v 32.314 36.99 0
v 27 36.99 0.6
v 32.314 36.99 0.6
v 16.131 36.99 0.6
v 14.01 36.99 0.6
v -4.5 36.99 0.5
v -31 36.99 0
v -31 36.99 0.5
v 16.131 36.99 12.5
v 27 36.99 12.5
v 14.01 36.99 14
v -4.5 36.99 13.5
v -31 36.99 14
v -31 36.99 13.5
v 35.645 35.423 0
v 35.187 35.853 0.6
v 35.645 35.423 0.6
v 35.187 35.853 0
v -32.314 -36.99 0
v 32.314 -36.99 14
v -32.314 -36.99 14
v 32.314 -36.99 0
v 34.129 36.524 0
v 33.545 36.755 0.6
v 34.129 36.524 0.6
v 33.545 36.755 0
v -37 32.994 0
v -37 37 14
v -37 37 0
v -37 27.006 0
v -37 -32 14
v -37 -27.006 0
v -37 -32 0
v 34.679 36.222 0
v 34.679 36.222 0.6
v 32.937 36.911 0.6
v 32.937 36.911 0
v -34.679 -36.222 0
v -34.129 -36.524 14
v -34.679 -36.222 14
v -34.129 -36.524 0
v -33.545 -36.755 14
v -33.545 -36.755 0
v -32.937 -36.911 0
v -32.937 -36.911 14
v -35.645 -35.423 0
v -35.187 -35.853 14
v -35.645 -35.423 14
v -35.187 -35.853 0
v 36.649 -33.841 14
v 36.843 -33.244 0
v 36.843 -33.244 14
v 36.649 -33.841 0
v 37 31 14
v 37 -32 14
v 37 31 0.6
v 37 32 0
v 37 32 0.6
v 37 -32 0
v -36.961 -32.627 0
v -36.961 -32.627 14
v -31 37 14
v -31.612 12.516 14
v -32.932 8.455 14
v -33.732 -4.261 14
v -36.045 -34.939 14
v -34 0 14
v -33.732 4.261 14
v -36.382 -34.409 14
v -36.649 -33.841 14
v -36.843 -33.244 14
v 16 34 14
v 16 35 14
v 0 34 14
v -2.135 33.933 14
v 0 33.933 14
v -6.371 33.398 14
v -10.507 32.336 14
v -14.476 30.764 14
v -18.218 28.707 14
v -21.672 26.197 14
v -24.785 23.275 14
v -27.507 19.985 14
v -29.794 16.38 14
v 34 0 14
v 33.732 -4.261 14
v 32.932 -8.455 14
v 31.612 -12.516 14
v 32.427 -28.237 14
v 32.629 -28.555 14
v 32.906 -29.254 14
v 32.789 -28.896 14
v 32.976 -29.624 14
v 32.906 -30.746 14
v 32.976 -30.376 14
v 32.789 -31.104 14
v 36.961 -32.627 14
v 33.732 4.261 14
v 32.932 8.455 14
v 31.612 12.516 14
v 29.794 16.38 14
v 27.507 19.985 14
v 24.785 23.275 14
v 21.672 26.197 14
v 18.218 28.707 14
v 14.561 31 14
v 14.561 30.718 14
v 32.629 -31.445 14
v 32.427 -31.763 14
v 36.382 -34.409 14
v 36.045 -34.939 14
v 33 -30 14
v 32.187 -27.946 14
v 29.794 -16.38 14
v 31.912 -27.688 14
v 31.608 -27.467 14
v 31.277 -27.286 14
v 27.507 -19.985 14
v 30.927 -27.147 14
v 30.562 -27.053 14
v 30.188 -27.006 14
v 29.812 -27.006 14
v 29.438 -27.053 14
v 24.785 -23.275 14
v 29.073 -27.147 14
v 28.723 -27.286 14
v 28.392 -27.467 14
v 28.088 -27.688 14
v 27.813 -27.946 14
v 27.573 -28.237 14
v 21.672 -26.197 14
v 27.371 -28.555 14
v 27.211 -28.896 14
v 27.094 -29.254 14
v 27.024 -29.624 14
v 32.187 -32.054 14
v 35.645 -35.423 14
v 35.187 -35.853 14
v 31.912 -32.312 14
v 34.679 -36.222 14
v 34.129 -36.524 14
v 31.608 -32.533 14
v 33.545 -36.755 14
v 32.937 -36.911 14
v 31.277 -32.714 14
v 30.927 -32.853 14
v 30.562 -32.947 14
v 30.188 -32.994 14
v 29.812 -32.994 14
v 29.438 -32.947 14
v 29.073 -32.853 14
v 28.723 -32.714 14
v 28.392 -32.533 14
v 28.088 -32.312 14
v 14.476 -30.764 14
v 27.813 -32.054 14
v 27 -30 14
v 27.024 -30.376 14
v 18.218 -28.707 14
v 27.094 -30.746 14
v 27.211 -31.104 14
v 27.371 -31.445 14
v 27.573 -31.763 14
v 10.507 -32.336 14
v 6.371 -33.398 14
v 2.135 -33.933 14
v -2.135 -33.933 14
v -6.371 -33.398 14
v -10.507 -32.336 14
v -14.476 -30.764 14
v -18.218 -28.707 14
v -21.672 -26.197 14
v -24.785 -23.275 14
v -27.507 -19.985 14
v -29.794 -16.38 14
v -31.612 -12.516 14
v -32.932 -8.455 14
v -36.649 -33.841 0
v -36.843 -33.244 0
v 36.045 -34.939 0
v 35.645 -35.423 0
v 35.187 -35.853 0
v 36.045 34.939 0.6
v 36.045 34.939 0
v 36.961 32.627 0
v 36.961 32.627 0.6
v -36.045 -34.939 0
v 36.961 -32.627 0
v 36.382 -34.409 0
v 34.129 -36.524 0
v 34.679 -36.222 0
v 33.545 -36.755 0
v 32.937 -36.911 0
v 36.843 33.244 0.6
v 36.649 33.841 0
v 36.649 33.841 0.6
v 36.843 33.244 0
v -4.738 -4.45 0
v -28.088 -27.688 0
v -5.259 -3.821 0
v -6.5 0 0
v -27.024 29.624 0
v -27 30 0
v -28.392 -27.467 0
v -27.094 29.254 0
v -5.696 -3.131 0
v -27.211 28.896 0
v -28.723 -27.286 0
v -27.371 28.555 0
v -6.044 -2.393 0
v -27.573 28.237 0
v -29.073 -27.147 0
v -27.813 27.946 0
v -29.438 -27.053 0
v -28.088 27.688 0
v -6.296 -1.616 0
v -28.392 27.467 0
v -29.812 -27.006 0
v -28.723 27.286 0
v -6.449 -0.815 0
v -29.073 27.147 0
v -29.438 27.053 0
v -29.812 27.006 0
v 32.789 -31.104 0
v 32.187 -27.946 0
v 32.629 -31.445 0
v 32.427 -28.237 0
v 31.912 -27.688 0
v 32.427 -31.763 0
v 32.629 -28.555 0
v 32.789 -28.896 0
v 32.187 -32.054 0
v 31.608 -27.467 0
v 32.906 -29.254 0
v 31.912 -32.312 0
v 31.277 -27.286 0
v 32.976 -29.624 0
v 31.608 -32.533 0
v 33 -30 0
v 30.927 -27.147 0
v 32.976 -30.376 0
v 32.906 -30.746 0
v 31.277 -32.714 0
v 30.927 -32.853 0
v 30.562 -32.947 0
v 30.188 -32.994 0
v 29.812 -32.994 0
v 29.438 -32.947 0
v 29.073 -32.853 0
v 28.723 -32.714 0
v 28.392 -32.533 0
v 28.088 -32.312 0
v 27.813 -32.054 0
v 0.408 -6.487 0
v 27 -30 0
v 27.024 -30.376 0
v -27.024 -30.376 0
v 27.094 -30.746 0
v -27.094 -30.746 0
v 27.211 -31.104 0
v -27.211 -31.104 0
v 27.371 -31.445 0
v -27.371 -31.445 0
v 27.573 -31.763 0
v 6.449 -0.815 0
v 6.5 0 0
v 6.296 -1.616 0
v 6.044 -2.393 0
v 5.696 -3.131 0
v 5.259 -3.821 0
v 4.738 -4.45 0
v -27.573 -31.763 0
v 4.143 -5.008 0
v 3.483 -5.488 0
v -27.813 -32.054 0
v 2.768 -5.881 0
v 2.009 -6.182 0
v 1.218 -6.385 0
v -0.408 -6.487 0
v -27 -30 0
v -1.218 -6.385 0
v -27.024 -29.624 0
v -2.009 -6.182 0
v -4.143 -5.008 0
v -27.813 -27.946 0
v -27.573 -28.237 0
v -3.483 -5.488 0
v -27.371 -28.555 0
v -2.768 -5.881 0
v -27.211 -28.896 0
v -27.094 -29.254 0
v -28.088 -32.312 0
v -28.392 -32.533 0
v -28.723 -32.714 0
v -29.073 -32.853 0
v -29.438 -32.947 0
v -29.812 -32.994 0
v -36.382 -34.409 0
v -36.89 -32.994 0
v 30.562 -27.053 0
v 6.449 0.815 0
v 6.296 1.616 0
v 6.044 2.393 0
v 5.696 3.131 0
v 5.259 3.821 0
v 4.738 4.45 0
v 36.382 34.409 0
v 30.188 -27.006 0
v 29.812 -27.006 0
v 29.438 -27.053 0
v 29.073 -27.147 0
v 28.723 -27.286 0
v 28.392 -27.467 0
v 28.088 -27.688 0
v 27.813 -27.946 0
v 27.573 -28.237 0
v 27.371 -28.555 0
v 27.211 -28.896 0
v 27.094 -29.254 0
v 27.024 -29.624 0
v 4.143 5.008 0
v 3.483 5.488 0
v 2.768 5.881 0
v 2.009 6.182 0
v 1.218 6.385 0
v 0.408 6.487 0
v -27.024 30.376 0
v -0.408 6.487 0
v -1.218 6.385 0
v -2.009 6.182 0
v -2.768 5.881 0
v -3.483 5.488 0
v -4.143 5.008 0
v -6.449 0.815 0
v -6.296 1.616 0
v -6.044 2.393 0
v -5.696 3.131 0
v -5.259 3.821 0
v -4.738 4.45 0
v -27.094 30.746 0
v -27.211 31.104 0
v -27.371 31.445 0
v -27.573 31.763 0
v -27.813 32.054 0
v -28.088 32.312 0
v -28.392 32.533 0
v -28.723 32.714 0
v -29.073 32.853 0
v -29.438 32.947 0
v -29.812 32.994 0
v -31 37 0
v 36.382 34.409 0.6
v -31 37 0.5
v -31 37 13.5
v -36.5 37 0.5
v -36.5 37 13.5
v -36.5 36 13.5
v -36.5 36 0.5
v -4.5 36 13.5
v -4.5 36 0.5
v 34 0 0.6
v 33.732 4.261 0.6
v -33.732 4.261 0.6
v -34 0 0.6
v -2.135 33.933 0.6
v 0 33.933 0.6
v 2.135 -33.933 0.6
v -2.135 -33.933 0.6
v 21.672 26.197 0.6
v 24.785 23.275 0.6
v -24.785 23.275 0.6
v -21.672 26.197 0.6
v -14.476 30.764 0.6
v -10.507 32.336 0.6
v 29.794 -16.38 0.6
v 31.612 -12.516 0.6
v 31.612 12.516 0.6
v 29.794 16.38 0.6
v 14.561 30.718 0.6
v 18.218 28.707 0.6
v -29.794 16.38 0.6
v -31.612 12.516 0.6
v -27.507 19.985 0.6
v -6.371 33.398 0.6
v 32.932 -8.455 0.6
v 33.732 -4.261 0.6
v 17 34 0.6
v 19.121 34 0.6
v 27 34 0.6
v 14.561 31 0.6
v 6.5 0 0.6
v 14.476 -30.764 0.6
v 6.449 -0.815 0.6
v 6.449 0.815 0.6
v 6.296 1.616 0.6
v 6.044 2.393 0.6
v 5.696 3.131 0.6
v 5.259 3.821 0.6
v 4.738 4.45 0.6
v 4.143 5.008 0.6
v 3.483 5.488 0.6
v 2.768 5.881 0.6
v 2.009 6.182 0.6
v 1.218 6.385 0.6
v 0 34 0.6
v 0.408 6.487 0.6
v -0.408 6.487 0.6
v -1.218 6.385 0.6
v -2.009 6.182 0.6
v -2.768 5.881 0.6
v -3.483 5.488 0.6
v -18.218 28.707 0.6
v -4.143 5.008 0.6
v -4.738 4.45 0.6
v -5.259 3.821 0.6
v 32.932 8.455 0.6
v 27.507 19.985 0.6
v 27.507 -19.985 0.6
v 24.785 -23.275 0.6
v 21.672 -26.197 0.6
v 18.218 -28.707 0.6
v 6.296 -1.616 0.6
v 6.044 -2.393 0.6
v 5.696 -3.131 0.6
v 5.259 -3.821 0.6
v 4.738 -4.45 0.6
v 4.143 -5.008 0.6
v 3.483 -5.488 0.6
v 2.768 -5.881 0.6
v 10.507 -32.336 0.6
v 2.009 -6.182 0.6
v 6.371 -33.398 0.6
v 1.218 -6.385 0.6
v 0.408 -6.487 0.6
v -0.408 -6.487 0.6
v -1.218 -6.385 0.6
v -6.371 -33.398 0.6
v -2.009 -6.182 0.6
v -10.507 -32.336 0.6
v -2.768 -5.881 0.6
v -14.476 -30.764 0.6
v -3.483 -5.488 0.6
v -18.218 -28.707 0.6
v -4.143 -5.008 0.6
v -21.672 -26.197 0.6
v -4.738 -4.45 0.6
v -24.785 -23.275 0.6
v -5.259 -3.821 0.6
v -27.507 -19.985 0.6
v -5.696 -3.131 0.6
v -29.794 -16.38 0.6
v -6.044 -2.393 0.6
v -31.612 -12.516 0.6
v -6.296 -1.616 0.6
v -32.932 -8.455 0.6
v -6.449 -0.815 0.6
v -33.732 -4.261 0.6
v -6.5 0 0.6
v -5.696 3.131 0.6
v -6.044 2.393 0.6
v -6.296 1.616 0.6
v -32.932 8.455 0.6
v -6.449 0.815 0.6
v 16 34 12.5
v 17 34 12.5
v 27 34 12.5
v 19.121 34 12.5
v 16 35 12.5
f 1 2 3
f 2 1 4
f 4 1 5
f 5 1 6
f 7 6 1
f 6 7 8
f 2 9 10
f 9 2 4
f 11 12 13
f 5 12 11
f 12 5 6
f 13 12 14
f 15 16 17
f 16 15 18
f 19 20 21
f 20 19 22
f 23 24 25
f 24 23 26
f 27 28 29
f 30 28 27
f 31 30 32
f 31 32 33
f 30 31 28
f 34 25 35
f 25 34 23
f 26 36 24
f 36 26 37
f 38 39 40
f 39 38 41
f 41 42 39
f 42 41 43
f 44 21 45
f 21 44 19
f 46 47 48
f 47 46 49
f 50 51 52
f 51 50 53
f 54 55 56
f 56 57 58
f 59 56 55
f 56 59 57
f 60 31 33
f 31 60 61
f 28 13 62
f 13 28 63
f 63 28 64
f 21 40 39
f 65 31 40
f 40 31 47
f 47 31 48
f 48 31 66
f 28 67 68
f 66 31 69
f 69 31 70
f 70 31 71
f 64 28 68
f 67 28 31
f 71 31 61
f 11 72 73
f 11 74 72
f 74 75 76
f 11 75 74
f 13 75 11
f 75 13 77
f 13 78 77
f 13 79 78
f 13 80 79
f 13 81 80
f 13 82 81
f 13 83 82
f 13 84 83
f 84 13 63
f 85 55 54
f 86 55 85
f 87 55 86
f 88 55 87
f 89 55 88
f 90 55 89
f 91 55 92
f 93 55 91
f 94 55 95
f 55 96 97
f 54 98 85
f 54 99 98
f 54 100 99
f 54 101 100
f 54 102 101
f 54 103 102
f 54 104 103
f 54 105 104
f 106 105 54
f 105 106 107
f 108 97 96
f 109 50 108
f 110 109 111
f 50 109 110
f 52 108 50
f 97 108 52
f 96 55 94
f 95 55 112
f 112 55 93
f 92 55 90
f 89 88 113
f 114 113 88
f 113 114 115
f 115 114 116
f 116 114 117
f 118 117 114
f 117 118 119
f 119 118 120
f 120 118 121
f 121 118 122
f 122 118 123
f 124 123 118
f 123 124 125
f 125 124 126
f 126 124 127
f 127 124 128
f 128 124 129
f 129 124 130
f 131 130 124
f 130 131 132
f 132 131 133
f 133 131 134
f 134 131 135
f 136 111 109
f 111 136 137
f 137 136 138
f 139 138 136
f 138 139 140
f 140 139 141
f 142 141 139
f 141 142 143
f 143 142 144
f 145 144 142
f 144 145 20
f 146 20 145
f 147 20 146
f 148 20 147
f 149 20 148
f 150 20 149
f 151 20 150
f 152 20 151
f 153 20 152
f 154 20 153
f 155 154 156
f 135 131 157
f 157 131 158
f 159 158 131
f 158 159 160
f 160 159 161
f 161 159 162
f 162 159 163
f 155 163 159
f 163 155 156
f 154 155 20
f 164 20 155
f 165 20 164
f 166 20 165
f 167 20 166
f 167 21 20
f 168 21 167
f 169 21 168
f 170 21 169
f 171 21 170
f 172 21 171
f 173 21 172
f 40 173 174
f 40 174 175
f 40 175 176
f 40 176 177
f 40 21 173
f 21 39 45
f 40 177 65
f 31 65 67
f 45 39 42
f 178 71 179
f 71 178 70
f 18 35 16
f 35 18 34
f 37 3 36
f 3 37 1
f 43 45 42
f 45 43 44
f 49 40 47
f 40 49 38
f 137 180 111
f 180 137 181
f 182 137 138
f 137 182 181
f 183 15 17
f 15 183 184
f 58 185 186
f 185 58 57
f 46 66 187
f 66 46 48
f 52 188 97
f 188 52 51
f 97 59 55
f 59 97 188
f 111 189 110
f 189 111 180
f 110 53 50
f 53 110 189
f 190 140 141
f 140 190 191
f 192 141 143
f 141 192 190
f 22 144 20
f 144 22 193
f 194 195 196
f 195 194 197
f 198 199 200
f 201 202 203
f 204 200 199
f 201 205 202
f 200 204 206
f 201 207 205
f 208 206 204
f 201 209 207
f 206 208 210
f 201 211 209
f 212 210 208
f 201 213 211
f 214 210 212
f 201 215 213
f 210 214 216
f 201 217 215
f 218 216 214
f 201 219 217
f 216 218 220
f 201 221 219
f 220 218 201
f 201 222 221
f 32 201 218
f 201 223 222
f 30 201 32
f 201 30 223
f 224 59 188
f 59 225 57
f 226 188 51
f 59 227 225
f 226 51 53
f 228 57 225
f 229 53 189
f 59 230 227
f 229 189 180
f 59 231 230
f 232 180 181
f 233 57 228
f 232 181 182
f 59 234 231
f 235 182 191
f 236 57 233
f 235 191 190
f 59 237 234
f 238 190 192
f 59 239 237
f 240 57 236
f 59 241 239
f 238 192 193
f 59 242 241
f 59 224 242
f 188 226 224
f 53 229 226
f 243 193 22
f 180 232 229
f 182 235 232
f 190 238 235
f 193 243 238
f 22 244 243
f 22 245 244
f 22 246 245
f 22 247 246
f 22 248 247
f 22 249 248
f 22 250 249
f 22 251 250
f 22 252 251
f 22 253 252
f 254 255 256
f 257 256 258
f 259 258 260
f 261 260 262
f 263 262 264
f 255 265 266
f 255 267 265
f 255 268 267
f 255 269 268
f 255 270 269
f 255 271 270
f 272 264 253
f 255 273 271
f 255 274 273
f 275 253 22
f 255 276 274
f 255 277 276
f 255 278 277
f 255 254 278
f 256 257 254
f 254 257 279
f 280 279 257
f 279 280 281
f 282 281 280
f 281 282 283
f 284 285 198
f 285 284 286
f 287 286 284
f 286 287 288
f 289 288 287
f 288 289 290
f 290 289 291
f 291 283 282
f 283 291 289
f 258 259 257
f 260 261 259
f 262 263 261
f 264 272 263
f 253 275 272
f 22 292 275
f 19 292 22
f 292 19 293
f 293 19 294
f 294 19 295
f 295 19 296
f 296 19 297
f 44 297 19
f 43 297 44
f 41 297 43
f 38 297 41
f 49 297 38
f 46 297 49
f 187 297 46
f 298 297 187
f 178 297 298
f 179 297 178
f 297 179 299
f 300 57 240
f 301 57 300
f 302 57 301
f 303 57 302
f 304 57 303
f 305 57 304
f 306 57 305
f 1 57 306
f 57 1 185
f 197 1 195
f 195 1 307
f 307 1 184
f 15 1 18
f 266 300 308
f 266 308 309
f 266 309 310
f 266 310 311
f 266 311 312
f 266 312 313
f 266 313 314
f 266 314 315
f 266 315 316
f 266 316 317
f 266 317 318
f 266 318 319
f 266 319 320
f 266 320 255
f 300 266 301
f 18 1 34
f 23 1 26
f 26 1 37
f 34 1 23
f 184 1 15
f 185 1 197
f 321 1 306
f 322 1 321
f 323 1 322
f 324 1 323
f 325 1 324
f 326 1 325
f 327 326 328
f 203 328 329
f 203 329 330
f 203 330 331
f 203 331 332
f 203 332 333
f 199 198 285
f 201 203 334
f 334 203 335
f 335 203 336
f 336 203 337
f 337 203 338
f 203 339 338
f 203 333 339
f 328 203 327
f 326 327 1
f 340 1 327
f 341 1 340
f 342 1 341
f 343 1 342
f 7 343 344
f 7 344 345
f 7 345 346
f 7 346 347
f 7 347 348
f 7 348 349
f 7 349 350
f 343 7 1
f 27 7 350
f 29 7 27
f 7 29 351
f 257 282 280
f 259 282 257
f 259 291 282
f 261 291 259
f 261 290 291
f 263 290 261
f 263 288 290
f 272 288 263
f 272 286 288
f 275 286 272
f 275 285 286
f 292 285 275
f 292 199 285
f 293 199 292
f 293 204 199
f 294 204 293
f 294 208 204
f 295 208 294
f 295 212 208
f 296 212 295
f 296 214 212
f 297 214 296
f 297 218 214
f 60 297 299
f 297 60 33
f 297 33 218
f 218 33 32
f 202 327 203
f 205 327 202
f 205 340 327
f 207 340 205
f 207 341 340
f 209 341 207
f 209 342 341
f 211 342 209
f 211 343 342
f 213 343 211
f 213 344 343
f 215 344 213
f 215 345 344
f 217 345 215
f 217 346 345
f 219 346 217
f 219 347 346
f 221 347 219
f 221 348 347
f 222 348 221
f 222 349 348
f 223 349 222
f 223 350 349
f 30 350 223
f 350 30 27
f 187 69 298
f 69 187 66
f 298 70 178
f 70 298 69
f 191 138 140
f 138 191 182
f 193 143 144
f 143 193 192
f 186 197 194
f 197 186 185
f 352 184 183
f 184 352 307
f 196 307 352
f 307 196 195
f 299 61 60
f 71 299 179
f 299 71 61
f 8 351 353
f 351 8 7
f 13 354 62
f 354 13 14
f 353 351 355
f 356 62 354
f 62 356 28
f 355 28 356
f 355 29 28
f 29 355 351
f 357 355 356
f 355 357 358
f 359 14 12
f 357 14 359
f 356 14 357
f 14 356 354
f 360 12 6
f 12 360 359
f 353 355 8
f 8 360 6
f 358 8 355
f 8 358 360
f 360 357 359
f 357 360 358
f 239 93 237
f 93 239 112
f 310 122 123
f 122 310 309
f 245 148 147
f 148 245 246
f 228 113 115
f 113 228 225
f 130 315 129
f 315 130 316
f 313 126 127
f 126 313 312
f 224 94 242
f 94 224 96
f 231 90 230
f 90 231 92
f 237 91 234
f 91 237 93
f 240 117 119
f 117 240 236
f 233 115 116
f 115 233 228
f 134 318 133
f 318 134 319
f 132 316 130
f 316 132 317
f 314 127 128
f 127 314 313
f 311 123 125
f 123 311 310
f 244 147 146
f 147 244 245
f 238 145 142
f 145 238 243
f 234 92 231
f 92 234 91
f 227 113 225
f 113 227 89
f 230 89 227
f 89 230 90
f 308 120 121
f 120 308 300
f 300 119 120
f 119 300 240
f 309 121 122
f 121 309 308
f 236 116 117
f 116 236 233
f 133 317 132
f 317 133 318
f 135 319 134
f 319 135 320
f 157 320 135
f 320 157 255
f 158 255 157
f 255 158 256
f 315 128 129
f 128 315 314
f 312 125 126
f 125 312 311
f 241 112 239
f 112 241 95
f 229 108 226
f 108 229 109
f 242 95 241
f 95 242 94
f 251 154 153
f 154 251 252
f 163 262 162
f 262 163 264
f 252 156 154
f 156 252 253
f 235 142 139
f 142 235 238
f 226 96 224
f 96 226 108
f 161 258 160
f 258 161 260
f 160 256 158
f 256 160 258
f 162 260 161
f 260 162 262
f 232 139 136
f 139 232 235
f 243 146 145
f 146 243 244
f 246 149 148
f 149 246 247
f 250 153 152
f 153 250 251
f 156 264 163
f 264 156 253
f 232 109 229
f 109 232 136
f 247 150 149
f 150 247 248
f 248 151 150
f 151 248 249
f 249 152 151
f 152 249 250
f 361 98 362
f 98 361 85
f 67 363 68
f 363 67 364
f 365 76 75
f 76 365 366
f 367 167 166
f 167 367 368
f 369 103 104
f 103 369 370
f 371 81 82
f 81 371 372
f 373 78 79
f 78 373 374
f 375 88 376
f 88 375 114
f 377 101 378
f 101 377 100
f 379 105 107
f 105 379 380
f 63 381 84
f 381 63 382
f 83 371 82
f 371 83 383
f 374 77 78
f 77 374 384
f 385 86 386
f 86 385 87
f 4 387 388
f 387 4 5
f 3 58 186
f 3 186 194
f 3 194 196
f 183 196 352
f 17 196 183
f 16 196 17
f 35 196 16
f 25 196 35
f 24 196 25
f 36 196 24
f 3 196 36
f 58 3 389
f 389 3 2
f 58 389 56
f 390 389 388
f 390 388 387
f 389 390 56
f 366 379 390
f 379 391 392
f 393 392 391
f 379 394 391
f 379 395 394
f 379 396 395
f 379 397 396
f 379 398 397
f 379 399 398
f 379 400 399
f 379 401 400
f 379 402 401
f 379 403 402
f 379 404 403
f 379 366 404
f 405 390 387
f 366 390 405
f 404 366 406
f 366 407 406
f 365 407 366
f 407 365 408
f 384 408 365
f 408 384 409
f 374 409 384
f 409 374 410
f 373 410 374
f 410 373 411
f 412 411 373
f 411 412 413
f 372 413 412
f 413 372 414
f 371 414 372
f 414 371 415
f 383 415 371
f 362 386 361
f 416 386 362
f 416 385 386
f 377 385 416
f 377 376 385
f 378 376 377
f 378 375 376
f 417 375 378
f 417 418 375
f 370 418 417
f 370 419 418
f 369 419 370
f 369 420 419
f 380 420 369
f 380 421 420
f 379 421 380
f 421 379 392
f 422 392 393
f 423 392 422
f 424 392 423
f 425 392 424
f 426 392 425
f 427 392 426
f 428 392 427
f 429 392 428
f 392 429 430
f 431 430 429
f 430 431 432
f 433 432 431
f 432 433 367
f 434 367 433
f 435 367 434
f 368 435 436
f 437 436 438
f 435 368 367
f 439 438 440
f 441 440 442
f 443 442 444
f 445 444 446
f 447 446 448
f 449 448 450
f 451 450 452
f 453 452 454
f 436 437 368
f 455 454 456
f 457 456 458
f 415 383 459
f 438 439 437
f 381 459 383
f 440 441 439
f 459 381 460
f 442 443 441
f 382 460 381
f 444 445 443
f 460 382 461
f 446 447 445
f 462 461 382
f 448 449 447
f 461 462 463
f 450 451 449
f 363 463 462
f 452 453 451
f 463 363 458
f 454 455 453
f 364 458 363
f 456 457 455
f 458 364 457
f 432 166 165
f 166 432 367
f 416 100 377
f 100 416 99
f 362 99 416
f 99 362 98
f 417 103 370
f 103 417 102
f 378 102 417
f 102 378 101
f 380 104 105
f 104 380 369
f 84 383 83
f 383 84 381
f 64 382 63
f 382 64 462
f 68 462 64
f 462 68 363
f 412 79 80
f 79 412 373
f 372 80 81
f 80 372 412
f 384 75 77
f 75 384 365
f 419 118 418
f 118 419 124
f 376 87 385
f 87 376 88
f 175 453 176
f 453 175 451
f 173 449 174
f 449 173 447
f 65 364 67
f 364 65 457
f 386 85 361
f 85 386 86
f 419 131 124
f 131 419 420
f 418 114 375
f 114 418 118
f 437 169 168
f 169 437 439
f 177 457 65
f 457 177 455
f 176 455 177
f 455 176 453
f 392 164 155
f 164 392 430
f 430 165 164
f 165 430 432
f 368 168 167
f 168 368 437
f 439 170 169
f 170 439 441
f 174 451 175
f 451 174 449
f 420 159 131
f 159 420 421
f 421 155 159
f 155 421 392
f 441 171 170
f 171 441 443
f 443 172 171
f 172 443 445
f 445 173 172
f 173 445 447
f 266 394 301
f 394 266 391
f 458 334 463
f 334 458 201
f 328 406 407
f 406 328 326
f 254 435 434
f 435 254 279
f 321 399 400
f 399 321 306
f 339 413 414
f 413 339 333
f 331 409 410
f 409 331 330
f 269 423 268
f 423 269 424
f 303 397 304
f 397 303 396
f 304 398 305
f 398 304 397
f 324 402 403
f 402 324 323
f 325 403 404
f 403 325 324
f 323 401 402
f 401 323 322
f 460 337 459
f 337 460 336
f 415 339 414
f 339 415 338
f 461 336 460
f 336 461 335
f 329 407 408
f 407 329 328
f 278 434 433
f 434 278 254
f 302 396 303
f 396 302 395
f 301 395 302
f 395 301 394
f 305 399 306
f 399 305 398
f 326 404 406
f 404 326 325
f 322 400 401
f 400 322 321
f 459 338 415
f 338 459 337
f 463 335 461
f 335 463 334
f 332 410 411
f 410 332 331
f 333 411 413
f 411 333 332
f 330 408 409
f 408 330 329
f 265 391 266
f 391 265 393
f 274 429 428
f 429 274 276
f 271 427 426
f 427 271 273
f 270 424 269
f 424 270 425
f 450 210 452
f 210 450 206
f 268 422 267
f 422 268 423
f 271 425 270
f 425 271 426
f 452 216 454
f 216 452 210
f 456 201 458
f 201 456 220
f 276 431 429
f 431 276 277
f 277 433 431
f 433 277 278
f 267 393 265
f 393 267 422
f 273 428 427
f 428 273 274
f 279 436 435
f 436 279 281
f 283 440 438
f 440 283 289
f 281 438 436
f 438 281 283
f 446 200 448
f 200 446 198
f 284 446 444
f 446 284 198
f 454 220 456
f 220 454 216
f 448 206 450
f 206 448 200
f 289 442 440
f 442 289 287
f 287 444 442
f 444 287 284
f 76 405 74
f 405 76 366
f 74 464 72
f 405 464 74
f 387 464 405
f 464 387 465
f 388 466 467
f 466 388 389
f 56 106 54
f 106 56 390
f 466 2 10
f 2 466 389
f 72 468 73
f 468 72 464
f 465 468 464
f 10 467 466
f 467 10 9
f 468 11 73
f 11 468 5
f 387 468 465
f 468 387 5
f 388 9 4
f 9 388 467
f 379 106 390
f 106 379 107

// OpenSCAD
$fn = 50;


difference() {
	union() {
		hull() {
			translate(v = [-32.0000000000, 32.0000000000, 0]) {
				cylinder(h = 14, r = 5);
			}
			translate(v = [32.0000000000, 32.0000000000, 0]) {
				cylinder(h = 14, r = 5);
			}
			translate(v = [-32.0000000000, -32.0000000000, 0]) {
				cylinder(h = 14, r = 5);
			}
			translate(v = [32.0000000000, -32.0000000000, 0]) {
				cylinder(h = 14, r = 5);
			}
		}
		translate(v = [-37.0000000000, 31.0000000000, 0]) {
			cube(size = [6, 6, 14]);
		}
	}
	union() {
		translate(v = [-37.5000000000, -30.0000000000, -250.0000000000]) {
			rotate(a = [0, 0, 0]) {
				difference() {
					union() {
						hull() {
							translate(v = [7.5000000000, 0, 0]) {
								cylinder(h = 250, r = 3.0000000000, r1 = 3.0000000000, r2 = 3.0000000000);
							}
							translate(v = [-7.5000000000, 0, 0]) {
								cylinder(h = 250, r = 3.0000000000, r1 = 3.0000000000, r2 = 3.0000000000);
							}
						}
					}
					union();
				}
			}
		}
		translate(v = [-37.5000000000, 30.0000000000, -250.0000000000]) {
			rotate(a = [0, 0, 0]) {
				difference() {
					union() {
						hull() {
							translate(v = [7.5000000000, 0, 0]) {
								cylinder(h = 250, r = 3.0000000000, r1 = 3.0000000000, r2 = 3.0000000000);
							}
							translate(v = [-7.5000000000, 0, 0]) {
								cylinder(h = 250, r = 3.0000000000, r1 = 3.0000000000, r2 = 3.0000000000);
							}
						}
					}
					union();
				}
			}
		}
		translate(v = [-36.5000000000, 36.0000000000, 0.5000000000]) {
			cube(size = [32, 1, 13.0000000000]);
		}
		translate(v = [30.0000000000, -30.0000000000, -50.0000000000]) {
			cylinder(h = 100, r = 3.0000000000);
		}
		translate(v = [0, 0, 0.6000000000]) {
			cylinder(h = 16.4000000000, r = 34.0000000000);
		}
		translate(v = [0, 0, -7.0000000000]) {
			cylinder(h = 14, r = 6.5000000000);
		}
		translate(v = [0.0000000000, 31.0000000000, 0.6000000000]) {
			cube(size = [37.0000000000, 3, 16.4000000000]);
		}
		translate(v = [27.0000000000, 31.0000000000, 0.6000000000]) {
			cube(size = [10, 6, 16.4000000000]);
		}
		translate(v = [16.0000000000, 31.0000000000, 12.5000000000]) {
			cube(size = [21, 6, 1.5000000000]);
		}
		translate(v = [13.2500000000, 37.7500000000, 0.6000000000]) {
			rotate(a = [0, 0, -45]) {
				cube(size = [7.5000000000, 1.5000000000, 16.4000000000]);
			}
		}
		translate(v = [7.0610000000, 29.0000000000, 0.6000000000]) {
			cube(size = [7.5000000000, 2, 13.4000000000]);
		}
	}
}
